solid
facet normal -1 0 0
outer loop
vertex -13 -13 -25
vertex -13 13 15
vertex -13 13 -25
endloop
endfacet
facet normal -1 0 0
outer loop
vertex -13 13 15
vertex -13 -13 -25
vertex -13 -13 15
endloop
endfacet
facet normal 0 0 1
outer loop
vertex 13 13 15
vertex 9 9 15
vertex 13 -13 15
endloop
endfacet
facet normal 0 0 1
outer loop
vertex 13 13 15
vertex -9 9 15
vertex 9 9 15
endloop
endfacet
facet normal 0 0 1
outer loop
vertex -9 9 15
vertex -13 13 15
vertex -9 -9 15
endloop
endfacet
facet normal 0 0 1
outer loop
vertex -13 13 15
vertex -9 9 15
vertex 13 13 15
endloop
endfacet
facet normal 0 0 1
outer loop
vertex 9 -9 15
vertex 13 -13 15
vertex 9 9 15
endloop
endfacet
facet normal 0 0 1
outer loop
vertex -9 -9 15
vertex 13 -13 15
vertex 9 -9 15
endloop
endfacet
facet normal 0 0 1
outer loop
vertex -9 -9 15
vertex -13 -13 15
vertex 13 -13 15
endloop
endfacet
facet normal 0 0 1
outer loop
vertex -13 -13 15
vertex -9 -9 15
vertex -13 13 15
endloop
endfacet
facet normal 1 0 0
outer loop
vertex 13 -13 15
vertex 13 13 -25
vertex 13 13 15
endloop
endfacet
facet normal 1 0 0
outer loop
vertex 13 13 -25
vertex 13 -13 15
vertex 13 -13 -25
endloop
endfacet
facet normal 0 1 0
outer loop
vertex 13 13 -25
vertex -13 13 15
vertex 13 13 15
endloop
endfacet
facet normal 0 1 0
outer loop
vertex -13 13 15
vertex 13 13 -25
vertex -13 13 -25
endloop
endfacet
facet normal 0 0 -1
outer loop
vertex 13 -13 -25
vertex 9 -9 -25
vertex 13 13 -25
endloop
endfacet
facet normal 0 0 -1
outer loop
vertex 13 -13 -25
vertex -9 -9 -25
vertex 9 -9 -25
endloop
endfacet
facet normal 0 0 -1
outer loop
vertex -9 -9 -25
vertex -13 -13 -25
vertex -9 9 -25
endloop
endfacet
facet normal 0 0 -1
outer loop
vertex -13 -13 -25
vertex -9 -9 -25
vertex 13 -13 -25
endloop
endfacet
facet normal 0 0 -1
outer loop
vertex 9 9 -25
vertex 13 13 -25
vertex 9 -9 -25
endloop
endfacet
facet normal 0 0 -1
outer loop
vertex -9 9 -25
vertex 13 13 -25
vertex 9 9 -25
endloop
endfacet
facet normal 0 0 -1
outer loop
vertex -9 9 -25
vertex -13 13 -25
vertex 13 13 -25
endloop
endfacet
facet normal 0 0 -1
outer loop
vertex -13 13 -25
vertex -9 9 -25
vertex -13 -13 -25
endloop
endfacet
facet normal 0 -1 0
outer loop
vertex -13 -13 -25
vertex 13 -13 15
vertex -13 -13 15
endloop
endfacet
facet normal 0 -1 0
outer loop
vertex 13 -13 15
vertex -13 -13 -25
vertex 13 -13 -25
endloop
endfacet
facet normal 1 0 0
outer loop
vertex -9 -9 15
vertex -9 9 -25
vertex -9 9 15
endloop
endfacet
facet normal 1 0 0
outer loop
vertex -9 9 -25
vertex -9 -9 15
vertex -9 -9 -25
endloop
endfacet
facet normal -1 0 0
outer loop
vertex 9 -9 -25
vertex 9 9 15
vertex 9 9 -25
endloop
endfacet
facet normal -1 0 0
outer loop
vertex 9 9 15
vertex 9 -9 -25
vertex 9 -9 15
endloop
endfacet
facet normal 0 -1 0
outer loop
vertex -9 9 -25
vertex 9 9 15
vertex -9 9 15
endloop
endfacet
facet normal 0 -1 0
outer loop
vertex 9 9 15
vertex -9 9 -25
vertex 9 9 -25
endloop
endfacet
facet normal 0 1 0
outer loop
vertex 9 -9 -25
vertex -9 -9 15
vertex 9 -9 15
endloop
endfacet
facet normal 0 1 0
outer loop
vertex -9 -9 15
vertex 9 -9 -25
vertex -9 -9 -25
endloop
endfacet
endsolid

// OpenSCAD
module CreateRectangleDonut(innerD, thickness, height, cent=true){
    difference(){
        cube([innerD+thickness, innerD+thickness, height], center=cent);
        if(cent==true){
            cube([innerD, innerD, height*1.1], center=cent);
        }else{
            translate([thickness/2, thickness/2,-0.1])
            cube([innerD, innerD, height*1.1], center=cent);
        }
    }
}
// Big inner rectangle the holds the engine and does X axis gyroings
rotate([0,0,0]) translate([-13,-13,-25])
    CreateRectangleDonut(18, 8, 40, false);
